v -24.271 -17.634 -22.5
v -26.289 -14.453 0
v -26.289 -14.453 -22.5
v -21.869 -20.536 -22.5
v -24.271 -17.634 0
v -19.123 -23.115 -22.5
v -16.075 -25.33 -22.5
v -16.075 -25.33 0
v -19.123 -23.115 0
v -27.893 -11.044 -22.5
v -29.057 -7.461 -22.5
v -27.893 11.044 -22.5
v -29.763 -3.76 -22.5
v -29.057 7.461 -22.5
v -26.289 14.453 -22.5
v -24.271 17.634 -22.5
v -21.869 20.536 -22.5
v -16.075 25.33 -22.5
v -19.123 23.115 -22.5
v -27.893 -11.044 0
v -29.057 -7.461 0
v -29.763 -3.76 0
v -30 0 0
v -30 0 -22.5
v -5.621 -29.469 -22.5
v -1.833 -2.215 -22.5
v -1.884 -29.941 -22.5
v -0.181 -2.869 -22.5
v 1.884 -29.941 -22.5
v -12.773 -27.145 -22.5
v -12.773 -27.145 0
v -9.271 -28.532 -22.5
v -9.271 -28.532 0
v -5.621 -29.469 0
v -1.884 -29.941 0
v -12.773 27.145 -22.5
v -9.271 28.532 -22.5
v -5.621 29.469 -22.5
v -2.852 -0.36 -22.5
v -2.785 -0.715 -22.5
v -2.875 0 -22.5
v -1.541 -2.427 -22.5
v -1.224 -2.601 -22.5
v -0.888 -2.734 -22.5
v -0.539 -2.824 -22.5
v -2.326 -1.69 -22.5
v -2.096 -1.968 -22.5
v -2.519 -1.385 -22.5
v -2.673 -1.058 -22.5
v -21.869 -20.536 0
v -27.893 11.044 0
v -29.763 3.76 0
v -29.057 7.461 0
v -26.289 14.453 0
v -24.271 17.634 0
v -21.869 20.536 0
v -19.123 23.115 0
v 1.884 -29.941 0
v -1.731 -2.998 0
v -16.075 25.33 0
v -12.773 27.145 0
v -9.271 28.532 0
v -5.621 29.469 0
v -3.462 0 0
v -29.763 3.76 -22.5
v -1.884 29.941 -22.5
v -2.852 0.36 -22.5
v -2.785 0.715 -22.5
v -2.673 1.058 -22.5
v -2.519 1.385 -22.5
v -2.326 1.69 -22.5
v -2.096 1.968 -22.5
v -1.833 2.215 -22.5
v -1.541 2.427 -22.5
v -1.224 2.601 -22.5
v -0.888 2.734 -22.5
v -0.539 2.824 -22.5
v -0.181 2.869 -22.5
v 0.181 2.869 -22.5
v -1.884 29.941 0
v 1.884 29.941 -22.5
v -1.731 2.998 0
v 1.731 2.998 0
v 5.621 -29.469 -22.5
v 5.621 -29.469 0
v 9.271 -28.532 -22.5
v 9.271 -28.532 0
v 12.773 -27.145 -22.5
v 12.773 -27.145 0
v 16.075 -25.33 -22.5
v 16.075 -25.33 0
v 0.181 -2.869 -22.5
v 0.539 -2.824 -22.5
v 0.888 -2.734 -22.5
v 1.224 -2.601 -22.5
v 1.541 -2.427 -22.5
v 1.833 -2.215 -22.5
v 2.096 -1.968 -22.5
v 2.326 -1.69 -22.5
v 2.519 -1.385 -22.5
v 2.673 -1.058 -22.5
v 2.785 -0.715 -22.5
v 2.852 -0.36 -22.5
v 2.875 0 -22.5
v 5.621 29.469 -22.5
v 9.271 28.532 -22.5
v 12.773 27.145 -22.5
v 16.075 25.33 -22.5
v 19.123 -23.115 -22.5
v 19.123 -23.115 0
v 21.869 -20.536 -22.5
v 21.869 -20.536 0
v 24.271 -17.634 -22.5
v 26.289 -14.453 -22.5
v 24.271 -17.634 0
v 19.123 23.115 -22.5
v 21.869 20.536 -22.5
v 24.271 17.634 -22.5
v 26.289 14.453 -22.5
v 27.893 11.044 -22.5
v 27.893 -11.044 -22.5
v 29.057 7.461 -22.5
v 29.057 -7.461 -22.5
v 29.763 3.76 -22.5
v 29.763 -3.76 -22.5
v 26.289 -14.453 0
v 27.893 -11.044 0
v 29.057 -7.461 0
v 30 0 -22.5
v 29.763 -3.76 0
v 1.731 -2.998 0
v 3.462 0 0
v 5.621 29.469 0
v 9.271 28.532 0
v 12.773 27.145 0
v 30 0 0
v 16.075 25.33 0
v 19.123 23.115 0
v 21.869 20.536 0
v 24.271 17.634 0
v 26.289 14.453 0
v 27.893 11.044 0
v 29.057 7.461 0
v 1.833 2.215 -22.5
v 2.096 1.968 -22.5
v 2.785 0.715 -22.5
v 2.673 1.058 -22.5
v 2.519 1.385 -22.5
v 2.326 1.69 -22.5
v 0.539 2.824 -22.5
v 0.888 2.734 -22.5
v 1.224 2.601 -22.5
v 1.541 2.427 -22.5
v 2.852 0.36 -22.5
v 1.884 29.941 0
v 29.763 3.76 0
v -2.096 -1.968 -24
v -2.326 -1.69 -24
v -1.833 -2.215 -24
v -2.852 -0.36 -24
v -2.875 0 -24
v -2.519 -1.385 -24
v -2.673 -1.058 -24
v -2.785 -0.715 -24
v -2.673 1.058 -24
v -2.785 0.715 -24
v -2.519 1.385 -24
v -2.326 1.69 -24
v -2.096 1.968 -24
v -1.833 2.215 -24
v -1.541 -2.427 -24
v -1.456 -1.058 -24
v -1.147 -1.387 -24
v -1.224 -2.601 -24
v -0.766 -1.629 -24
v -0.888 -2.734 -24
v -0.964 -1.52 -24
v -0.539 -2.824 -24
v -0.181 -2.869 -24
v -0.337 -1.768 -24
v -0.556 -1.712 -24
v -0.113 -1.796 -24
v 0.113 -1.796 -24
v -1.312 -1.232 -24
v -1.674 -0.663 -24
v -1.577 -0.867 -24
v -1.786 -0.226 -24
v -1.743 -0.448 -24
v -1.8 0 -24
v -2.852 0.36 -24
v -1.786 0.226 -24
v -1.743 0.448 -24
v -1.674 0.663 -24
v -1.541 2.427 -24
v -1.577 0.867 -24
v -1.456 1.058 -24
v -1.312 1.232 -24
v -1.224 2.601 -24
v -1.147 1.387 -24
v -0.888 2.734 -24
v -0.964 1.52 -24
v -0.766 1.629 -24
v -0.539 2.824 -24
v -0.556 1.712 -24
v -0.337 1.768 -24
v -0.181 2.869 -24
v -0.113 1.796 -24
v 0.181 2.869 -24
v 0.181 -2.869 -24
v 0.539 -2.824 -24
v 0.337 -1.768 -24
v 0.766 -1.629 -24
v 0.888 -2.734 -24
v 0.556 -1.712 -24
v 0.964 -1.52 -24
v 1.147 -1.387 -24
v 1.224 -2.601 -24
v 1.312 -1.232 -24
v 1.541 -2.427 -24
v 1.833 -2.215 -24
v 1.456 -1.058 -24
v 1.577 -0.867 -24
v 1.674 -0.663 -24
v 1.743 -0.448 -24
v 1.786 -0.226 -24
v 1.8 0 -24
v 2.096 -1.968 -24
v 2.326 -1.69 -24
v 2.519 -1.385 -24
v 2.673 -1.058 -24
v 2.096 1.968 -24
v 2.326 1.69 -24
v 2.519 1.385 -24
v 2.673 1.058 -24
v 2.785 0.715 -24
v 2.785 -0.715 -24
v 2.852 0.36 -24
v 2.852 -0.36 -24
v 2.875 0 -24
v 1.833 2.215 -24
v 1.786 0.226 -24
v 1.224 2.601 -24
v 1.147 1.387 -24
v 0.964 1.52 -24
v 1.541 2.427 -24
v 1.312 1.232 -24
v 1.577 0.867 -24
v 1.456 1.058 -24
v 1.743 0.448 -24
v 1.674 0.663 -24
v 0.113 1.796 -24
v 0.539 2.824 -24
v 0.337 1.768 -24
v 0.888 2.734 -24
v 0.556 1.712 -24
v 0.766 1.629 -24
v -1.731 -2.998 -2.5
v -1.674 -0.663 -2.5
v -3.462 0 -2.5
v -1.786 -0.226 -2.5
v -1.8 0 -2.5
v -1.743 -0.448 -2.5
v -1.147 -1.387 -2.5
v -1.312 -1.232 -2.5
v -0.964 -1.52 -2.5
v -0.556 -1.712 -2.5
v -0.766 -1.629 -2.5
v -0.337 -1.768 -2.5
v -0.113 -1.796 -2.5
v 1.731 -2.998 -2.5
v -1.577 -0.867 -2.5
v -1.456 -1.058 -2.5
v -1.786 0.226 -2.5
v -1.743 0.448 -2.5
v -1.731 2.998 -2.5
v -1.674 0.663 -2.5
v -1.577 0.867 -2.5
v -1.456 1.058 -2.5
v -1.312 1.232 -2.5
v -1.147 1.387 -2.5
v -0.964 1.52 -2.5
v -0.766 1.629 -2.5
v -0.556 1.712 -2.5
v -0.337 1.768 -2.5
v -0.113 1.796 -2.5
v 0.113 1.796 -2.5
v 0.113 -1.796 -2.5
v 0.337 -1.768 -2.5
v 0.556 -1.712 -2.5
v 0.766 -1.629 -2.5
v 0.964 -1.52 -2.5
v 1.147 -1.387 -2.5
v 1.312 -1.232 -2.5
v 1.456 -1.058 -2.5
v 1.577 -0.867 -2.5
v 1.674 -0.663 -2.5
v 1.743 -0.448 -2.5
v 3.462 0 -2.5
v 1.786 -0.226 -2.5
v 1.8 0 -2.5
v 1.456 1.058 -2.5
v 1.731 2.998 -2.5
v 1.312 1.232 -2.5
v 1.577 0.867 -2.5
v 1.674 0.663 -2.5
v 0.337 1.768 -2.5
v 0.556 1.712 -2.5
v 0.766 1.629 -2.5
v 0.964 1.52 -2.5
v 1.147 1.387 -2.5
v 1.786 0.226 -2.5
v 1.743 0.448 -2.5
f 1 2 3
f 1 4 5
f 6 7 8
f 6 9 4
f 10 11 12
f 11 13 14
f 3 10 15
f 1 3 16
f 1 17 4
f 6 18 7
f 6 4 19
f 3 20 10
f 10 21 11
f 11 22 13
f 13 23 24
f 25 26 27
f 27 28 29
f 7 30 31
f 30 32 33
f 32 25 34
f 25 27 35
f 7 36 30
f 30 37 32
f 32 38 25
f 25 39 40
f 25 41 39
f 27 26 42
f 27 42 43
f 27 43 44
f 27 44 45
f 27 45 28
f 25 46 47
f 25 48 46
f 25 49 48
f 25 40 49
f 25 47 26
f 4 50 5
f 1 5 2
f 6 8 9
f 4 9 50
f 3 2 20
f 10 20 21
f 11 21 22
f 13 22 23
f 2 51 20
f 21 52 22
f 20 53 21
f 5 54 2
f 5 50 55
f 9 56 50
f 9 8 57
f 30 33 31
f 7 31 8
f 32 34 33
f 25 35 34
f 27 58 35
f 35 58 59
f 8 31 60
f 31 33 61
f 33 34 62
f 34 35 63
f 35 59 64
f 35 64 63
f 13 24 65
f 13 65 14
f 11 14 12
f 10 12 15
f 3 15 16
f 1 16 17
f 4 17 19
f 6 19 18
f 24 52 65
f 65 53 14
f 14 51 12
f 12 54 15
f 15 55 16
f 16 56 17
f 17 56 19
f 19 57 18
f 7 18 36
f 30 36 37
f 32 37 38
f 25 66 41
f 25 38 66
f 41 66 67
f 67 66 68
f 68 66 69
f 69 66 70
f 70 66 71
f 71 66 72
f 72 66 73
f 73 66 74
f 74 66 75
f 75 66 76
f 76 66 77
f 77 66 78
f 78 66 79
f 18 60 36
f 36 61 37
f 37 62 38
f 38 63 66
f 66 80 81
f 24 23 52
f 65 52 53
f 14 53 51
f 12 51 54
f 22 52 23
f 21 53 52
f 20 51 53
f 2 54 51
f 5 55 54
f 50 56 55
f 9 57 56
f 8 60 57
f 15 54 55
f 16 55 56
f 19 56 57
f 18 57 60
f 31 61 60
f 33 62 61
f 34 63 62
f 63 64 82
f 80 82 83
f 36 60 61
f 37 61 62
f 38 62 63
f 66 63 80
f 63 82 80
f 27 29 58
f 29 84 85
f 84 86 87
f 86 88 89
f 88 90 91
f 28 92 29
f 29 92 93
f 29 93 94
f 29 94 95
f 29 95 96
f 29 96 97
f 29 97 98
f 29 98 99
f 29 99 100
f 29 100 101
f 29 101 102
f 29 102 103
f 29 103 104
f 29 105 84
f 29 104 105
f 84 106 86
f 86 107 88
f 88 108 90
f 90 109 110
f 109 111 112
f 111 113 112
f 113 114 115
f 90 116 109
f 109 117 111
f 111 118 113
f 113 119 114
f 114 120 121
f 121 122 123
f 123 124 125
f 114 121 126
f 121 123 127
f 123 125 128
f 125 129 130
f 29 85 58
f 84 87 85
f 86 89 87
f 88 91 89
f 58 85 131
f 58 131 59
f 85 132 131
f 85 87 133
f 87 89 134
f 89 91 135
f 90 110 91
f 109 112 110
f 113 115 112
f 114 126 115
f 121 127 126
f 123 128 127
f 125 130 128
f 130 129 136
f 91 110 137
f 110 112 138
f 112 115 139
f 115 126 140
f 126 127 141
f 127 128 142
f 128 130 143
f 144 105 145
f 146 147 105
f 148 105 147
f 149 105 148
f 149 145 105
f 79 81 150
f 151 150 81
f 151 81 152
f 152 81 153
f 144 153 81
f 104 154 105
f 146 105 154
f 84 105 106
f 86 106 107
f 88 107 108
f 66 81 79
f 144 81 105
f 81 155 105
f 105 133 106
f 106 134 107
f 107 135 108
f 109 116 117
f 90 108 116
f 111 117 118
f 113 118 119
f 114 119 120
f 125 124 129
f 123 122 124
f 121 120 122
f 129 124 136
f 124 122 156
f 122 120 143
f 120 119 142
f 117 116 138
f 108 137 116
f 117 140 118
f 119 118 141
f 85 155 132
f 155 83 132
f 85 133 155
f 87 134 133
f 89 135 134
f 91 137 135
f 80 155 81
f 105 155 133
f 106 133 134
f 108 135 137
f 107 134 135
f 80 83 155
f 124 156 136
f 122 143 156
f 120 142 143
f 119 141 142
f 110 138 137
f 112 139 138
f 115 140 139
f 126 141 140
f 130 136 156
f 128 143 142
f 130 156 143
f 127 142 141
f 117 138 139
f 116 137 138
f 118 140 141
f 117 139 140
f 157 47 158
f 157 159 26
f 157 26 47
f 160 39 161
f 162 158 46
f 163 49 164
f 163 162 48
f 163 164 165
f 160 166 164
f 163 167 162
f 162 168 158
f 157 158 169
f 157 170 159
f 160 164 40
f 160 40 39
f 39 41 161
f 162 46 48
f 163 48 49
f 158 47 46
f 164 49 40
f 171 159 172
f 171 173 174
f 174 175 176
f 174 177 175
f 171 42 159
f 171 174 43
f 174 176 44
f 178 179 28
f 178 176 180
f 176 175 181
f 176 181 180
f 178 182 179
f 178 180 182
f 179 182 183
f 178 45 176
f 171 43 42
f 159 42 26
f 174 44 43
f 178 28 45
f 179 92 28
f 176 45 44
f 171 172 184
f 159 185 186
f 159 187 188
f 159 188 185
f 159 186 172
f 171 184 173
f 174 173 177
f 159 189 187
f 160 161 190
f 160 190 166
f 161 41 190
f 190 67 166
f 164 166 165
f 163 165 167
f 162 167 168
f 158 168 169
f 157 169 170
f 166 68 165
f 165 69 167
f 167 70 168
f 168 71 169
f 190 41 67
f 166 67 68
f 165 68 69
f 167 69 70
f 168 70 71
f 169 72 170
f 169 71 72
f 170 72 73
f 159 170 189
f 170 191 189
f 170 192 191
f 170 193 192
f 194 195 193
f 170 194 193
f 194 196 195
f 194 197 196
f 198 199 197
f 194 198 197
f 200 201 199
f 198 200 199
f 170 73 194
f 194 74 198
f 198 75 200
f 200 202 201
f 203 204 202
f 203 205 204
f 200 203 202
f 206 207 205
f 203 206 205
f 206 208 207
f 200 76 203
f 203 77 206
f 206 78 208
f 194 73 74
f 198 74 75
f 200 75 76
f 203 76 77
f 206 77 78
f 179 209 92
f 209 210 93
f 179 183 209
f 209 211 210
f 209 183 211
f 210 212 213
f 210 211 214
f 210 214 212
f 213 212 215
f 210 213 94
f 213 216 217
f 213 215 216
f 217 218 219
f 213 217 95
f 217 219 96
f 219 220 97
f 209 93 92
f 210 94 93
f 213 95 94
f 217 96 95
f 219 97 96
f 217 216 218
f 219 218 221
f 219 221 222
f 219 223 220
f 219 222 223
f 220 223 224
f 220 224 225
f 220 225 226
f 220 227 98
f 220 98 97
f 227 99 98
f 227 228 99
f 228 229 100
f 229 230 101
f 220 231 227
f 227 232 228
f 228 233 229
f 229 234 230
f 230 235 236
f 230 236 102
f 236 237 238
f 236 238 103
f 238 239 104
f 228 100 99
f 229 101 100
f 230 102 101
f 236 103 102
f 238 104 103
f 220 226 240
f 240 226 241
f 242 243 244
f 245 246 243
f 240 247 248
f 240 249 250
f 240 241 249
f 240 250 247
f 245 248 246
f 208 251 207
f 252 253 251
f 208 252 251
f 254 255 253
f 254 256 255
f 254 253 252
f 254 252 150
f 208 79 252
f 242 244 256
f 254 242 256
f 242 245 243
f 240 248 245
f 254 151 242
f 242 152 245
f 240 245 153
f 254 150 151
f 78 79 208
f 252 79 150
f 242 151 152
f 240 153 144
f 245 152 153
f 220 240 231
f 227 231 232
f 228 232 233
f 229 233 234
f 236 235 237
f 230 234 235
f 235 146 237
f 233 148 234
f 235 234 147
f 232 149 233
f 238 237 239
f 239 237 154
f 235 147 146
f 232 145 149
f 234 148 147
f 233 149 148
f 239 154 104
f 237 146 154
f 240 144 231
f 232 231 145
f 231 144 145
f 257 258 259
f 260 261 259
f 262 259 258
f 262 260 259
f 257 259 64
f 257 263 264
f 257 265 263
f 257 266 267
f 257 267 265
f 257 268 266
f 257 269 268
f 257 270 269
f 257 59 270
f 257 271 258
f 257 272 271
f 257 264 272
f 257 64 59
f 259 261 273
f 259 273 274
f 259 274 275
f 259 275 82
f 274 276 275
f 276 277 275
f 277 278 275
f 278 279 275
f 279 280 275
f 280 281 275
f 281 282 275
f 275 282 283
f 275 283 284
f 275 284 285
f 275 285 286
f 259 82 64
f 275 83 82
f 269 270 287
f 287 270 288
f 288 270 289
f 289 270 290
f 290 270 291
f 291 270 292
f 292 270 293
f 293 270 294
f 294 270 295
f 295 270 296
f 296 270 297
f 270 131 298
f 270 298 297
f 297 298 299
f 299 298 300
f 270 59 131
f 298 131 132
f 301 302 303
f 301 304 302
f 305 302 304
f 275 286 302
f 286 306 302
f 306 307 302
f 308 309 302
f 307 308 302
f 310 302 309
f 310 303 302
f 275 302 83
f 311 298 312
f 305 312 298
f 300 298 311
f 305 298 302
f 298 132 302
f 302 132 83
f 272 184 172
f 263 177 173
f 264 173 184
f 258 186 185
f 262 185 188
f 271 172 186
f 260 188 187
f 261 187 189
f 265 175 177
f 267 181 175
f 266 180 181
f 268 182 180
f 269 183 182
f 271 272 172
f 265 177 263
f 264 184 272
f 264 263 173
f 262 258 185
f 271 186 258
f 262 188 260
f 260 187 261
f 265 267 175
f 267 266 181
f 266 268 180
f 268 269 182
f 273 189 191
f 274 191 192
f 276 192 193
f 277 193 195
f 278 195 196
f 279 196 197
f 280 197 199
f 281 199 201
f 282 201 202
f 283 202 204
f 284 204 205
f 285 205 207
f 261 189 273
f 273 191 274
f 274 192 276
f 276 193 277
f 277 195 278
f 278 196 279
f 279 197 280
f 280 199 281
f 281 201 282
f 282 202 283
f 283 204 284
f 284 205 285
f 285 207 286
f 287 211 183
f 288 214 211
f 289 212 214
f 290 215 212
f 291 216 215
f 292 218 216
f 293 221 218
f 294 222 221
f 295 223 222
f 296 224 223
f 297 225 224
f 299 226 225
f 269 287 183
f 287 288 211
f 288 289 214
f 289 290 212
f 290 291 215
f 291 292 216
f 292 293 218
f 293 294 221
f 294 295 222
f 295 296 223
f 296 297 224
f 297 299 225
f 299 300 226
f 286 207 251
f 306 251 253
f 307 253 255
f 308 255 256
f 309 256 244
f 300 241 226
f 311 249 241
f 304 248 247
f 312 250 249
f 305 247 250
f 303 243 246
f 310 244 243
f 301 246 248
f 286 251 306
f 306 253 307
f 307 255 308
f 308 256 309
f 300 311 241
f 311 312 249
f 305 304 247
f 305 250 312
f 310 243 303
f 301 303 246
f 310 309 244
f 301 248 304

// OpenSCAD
$fn = 50;

difference() {
	union() {
		translate(v = [0, 0, -22.5]) {
			cylinder(h = 22.5, r = 30.0);
		}
		#translate(v = [0, 0, -24.0]) {
			cylinder(h = 24, r = 2.875);
		}
	}
	union() {
		translate(v = [0, 0, 0]) {
			rotate(a = [0, 0, 0]) {
				difference() {
					union() {
						translate(v = [0, 0, -2.5]) {
							linear_extrude(height = 2.5) {
								polygon(points = [[3.4619999999999997, 0.0], [1.7310000000000003, 2.9981799479017264], [-1.7309999999999992, 2.9981799479017264], [-3.4619999999999997, 4.2397272186481365e-16], [-1.7310000000000014, -2.998179947901726], [1.7309999999999977, -2.9981799479017277]]);
							}
						}
					}
					union();
				}
			}
		}
		#translate(v = [0, 0, -100.0]) {
			cylinder(h = 200, r = 1.8);
		}
	}
}
